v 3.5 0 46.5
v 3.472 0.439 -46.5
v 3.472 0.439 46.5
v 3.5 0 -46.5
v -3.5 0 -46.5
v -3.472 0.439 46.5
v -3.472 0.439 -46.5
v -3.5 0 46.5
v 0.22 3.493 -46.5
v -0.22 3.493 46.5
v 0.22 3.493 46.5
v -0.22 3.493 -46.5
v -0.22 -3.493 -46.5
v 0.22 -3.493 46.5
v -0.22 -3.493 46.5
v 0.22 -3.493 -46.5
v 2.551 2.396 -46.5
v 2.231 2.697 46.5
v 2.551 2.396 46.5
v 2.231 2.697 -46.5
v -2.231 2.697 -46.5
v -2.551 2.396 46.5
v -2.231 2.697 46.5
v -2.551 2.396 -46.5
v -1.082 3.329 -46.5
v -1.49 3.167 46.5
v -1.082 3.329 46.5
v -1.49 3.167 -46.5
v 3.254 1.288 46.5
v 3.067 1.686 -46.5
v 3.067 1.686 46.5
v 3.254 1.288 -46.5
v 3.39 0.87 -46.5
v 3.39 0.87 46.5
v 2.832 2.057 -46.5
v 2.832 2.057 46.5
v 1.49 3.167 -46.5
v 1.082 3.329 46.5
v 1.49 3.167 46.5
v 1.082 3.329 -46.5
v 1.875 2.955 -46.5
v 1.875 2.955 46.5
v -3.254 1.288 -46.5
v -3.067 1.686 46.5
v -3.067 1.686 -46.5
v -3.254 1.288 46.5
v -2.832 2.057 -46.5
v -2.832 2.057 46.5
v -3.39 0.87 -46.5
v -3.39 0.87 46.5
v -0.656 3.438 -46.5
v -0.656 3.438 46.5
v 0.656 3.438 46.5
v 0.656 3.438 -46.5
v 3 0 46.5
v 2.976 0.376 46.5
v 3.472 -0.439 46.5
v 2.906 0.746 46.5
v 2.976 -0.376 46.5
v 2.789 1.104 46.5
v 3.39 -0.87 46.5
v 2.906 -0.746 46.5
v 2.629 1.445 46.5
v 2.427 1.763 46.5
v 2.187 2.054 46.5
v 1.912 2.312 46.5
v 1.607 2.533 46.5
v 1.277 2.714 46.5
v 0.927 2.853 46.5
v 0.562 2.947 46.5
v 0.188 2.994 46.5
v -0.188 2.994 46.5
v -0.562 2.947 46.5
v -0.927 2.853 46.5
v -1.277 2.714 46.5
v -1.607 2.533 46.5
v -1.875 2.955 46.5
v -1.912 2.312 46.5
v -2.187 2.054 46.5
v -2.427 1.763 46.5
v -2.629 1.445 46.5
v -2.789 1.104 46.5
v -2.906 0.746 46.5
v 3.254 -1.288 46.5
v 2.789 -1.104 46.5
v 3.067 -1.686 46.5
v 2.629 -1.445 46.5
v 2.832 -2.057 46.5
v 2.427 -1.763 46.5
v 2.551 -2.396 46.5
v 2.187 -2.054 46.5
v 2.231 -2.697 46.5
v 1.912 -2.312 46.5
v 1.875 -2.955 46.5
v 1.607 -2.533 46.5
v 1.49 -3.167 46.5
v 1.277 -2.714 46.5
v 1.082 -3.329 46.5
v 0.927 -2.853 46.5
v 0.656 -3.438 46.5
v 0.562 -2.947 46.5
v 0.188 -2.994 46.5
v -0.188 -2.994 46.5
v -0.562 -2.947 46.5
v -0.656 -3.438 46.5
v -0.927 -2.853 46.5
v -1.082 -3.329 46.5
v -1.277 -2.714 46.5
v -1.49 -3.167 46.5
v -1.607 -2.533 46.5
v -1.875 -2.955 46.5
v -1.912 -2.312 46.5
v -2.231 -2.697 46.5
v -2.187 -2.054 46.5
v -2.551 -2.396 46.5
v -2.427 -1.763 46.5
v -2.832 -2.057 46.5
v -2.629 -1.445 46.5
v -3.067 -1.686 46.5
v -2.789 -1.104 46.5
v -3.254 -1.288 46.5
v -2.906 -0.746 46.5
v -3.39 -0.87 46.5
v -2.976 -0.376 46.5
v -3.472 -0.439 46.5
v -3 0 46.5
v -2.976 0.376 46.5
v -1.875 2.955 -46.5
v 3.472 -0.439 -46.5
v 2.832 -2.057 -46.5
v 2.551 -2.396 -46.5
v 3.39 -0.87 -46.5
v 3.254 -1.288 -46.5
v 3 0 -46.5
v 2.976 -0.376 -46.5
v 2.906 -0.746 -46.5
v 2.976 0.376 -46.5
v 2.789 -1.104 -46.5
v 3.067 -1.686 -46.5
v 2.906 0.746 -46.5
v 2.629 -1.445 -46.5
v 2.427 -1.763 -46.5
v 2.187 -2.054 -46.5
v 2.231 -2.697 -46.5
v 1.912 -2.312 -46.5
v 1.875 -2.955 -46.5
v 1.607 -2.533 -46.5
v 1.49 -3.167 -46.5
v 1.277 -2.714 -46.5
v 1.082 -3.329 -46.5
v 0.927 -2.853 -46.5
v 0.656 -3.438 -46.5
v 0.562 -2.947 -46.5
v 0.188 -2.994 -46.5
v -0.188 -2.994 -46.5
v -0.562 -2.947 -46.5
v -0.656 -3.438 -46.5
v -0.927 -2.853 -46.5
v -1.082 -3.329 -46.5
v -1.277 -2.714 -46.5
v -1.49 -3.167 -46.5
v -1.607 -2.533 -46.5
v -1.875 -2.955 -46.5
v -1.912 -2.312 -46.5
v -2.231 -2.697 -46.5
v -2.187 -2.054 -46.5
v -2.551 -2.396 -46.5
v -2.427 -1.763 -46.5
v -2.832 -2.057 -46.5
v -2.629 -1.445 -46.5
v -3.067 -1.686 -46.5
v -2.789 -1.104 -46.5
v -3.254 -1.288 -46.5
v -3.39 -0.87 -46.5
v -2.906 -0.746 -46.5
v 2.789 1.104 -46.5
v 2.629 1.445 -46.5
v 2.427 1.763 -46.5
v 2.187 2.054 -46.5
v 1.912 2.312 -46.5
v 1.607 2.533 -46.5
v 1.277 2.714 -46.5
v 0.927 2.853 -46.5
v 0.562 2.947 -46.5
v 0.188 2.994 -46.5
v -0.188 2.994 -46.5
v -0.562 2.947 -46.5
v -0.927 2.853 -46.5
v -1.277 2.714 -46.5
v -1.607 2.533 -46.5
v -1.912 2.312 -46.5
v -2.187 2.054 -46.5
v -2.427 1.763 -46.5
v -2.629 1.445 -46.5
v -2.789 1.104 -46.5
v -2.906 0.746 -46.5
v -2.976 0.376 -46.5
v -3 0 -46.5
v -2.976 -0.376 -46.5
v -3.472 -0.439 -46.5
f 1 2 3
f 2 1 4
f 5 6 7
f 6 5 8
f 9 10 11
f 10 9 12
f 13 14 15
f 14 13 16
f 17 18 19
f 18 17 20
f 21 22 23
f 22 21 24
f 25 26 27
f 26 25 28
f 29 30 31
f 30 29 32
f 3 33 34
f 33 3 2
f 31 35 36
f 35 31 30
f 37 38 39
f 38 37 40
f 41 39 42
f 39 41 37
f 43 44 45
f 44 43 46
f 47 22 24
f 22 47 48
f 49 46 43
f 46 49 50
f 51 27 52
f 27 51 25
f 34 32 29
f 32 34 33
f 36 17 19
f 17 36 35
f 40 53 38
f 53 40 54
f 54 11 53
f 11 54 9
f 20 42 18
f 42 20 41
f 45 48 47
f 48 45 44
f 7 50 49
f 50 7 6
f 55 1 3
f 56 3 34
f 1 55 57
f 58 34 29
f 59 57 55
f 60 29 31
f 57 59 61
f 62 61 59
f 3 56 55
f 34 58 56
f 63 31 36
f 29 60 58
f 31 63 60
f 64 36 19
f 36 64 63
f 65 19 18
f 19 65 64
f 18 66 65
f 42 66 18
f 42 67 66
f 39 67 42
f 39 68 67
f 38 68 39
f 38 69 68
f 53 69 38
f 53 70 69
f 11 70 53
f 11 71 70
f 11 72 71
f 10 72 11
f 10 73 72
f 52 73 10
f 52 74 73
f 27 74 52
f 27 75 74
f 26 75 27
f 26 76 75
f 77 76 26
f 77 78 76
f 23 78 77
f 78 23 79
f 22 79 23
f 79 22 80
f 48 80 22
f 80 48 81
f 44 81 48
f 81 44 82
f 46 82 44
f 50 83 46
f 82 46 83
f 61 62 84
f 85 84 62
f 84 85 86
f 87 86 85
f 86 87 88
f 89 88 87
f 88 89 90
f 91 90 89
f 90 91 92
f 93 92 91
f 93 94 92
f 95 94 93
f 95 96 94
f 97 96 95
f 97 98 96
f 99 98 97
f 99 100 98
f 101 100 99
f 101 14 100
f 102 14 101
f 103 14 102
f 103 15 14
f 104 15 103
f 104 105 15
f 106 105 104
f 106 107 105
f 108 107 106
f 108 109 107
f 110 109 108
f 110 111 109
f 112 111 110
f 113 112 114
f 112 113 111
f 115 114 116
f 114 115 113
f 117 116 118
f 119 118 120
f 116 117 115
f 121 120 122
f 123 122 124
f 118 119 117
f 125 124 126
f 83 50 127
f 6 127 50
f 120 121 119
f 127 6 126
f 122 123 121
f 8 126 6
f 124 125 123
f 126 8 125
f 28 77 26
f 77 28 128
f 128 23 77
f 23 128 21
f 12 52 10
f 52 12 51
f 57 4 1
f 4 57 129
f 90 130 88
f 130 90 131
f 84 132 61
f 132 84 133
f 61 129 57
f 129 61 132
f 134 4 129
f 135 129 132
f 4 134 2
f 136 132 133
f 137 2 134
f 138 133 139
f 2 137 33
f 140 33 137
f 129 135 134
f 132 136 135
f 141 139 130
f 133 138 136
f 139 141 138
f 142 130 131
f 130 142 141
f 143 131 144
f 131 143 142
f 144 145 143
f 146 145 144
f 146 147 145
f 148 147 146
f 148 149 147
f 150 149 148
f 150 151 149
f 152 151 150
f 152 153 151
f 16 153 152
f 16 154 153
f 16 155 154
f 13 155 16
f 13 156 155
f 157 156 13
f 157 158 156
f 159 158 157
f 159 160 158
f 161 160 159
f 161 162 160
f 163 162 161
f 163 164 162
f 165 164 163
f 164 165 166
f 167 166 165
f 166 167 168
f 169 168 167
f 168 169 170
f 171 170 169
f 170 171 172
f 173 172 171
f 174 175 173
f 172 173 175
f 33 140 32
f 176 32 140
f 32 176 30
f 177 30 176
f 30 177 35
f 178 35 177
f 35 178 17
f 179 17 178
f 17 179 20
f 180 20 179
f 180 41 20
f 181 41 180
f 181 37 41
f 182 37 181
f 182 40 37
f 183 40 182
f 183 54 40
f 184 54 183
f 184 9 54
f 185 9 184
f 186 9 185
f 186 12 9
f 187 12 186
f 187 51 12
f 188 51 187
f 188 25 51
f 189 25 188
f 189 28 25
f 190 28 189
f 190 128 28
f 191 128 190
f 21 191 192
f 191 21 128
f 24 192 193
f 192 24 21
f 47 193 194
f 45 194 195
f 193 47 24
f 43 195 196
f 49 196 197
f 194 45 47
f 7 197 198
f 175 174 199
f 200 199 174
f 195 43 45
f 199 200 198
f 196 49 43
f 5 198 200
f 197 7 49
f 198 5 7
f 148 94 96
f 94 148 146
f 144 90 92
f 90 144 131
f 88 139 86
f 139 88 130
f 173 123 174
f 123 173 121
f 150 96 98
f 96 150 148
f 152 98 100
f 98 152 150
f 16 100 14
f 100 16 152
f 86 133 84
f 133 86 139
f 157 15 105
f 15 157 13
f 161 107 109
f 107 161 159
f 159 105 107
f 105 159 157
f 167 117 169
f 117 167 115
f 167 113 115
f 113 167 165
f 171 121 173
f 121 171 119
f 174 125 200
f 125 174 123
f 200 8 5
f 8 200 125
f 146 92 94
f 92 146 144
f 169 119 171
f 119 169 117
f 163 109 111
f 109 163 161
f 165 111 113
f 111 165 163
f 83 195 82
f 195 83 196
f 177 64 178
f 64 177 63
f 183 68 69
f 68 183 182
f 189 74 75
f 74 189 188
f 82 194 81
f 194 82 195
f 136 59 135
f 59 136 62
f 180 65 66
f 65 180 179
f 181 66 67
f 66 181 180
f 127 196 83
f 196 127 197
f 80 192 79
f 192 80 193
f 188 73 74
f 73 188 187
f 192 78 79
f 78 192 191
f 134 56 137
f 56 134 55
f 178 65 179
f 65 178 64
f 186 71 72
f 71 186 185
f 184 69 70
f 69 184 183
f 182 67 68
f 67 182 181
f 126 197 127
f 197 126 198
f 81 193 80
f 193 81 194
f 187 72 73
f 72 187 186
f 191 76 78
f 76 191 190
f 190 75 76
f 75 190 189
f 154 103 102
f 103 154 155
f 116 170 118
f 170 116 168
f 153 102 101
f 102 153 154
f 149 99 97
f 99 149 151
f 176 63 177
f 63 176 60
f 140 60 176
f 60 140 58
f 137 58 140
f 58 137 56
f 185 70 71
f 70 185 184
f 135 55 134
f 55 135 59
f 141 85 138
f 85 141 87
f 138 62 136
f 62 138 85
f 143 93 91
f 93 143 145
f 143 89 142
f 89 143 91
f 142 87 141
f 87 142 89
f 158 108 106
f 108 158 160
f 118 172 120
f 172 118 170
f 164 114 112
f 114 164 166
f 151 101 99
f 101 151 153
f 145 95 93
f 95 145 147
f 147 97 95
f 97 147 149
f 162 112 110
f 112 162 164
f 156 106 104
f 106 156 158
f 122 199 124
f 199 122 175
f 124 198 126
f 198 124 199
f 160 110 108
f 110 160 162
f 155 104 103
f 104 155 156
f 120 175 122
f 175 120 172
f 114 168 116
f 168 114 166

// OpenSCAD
$fn = 50;


difference() {
	union() {
		translate(v = [0, 0, -46.5000000000]) {
			cylinder(h = 93, r = 3.5000000000);
		}
	}
	union() {
		translate(v = [0, 0, -100.0000000000]) {
			cylinder(h = 200, r = 3);
		}
	}
}
